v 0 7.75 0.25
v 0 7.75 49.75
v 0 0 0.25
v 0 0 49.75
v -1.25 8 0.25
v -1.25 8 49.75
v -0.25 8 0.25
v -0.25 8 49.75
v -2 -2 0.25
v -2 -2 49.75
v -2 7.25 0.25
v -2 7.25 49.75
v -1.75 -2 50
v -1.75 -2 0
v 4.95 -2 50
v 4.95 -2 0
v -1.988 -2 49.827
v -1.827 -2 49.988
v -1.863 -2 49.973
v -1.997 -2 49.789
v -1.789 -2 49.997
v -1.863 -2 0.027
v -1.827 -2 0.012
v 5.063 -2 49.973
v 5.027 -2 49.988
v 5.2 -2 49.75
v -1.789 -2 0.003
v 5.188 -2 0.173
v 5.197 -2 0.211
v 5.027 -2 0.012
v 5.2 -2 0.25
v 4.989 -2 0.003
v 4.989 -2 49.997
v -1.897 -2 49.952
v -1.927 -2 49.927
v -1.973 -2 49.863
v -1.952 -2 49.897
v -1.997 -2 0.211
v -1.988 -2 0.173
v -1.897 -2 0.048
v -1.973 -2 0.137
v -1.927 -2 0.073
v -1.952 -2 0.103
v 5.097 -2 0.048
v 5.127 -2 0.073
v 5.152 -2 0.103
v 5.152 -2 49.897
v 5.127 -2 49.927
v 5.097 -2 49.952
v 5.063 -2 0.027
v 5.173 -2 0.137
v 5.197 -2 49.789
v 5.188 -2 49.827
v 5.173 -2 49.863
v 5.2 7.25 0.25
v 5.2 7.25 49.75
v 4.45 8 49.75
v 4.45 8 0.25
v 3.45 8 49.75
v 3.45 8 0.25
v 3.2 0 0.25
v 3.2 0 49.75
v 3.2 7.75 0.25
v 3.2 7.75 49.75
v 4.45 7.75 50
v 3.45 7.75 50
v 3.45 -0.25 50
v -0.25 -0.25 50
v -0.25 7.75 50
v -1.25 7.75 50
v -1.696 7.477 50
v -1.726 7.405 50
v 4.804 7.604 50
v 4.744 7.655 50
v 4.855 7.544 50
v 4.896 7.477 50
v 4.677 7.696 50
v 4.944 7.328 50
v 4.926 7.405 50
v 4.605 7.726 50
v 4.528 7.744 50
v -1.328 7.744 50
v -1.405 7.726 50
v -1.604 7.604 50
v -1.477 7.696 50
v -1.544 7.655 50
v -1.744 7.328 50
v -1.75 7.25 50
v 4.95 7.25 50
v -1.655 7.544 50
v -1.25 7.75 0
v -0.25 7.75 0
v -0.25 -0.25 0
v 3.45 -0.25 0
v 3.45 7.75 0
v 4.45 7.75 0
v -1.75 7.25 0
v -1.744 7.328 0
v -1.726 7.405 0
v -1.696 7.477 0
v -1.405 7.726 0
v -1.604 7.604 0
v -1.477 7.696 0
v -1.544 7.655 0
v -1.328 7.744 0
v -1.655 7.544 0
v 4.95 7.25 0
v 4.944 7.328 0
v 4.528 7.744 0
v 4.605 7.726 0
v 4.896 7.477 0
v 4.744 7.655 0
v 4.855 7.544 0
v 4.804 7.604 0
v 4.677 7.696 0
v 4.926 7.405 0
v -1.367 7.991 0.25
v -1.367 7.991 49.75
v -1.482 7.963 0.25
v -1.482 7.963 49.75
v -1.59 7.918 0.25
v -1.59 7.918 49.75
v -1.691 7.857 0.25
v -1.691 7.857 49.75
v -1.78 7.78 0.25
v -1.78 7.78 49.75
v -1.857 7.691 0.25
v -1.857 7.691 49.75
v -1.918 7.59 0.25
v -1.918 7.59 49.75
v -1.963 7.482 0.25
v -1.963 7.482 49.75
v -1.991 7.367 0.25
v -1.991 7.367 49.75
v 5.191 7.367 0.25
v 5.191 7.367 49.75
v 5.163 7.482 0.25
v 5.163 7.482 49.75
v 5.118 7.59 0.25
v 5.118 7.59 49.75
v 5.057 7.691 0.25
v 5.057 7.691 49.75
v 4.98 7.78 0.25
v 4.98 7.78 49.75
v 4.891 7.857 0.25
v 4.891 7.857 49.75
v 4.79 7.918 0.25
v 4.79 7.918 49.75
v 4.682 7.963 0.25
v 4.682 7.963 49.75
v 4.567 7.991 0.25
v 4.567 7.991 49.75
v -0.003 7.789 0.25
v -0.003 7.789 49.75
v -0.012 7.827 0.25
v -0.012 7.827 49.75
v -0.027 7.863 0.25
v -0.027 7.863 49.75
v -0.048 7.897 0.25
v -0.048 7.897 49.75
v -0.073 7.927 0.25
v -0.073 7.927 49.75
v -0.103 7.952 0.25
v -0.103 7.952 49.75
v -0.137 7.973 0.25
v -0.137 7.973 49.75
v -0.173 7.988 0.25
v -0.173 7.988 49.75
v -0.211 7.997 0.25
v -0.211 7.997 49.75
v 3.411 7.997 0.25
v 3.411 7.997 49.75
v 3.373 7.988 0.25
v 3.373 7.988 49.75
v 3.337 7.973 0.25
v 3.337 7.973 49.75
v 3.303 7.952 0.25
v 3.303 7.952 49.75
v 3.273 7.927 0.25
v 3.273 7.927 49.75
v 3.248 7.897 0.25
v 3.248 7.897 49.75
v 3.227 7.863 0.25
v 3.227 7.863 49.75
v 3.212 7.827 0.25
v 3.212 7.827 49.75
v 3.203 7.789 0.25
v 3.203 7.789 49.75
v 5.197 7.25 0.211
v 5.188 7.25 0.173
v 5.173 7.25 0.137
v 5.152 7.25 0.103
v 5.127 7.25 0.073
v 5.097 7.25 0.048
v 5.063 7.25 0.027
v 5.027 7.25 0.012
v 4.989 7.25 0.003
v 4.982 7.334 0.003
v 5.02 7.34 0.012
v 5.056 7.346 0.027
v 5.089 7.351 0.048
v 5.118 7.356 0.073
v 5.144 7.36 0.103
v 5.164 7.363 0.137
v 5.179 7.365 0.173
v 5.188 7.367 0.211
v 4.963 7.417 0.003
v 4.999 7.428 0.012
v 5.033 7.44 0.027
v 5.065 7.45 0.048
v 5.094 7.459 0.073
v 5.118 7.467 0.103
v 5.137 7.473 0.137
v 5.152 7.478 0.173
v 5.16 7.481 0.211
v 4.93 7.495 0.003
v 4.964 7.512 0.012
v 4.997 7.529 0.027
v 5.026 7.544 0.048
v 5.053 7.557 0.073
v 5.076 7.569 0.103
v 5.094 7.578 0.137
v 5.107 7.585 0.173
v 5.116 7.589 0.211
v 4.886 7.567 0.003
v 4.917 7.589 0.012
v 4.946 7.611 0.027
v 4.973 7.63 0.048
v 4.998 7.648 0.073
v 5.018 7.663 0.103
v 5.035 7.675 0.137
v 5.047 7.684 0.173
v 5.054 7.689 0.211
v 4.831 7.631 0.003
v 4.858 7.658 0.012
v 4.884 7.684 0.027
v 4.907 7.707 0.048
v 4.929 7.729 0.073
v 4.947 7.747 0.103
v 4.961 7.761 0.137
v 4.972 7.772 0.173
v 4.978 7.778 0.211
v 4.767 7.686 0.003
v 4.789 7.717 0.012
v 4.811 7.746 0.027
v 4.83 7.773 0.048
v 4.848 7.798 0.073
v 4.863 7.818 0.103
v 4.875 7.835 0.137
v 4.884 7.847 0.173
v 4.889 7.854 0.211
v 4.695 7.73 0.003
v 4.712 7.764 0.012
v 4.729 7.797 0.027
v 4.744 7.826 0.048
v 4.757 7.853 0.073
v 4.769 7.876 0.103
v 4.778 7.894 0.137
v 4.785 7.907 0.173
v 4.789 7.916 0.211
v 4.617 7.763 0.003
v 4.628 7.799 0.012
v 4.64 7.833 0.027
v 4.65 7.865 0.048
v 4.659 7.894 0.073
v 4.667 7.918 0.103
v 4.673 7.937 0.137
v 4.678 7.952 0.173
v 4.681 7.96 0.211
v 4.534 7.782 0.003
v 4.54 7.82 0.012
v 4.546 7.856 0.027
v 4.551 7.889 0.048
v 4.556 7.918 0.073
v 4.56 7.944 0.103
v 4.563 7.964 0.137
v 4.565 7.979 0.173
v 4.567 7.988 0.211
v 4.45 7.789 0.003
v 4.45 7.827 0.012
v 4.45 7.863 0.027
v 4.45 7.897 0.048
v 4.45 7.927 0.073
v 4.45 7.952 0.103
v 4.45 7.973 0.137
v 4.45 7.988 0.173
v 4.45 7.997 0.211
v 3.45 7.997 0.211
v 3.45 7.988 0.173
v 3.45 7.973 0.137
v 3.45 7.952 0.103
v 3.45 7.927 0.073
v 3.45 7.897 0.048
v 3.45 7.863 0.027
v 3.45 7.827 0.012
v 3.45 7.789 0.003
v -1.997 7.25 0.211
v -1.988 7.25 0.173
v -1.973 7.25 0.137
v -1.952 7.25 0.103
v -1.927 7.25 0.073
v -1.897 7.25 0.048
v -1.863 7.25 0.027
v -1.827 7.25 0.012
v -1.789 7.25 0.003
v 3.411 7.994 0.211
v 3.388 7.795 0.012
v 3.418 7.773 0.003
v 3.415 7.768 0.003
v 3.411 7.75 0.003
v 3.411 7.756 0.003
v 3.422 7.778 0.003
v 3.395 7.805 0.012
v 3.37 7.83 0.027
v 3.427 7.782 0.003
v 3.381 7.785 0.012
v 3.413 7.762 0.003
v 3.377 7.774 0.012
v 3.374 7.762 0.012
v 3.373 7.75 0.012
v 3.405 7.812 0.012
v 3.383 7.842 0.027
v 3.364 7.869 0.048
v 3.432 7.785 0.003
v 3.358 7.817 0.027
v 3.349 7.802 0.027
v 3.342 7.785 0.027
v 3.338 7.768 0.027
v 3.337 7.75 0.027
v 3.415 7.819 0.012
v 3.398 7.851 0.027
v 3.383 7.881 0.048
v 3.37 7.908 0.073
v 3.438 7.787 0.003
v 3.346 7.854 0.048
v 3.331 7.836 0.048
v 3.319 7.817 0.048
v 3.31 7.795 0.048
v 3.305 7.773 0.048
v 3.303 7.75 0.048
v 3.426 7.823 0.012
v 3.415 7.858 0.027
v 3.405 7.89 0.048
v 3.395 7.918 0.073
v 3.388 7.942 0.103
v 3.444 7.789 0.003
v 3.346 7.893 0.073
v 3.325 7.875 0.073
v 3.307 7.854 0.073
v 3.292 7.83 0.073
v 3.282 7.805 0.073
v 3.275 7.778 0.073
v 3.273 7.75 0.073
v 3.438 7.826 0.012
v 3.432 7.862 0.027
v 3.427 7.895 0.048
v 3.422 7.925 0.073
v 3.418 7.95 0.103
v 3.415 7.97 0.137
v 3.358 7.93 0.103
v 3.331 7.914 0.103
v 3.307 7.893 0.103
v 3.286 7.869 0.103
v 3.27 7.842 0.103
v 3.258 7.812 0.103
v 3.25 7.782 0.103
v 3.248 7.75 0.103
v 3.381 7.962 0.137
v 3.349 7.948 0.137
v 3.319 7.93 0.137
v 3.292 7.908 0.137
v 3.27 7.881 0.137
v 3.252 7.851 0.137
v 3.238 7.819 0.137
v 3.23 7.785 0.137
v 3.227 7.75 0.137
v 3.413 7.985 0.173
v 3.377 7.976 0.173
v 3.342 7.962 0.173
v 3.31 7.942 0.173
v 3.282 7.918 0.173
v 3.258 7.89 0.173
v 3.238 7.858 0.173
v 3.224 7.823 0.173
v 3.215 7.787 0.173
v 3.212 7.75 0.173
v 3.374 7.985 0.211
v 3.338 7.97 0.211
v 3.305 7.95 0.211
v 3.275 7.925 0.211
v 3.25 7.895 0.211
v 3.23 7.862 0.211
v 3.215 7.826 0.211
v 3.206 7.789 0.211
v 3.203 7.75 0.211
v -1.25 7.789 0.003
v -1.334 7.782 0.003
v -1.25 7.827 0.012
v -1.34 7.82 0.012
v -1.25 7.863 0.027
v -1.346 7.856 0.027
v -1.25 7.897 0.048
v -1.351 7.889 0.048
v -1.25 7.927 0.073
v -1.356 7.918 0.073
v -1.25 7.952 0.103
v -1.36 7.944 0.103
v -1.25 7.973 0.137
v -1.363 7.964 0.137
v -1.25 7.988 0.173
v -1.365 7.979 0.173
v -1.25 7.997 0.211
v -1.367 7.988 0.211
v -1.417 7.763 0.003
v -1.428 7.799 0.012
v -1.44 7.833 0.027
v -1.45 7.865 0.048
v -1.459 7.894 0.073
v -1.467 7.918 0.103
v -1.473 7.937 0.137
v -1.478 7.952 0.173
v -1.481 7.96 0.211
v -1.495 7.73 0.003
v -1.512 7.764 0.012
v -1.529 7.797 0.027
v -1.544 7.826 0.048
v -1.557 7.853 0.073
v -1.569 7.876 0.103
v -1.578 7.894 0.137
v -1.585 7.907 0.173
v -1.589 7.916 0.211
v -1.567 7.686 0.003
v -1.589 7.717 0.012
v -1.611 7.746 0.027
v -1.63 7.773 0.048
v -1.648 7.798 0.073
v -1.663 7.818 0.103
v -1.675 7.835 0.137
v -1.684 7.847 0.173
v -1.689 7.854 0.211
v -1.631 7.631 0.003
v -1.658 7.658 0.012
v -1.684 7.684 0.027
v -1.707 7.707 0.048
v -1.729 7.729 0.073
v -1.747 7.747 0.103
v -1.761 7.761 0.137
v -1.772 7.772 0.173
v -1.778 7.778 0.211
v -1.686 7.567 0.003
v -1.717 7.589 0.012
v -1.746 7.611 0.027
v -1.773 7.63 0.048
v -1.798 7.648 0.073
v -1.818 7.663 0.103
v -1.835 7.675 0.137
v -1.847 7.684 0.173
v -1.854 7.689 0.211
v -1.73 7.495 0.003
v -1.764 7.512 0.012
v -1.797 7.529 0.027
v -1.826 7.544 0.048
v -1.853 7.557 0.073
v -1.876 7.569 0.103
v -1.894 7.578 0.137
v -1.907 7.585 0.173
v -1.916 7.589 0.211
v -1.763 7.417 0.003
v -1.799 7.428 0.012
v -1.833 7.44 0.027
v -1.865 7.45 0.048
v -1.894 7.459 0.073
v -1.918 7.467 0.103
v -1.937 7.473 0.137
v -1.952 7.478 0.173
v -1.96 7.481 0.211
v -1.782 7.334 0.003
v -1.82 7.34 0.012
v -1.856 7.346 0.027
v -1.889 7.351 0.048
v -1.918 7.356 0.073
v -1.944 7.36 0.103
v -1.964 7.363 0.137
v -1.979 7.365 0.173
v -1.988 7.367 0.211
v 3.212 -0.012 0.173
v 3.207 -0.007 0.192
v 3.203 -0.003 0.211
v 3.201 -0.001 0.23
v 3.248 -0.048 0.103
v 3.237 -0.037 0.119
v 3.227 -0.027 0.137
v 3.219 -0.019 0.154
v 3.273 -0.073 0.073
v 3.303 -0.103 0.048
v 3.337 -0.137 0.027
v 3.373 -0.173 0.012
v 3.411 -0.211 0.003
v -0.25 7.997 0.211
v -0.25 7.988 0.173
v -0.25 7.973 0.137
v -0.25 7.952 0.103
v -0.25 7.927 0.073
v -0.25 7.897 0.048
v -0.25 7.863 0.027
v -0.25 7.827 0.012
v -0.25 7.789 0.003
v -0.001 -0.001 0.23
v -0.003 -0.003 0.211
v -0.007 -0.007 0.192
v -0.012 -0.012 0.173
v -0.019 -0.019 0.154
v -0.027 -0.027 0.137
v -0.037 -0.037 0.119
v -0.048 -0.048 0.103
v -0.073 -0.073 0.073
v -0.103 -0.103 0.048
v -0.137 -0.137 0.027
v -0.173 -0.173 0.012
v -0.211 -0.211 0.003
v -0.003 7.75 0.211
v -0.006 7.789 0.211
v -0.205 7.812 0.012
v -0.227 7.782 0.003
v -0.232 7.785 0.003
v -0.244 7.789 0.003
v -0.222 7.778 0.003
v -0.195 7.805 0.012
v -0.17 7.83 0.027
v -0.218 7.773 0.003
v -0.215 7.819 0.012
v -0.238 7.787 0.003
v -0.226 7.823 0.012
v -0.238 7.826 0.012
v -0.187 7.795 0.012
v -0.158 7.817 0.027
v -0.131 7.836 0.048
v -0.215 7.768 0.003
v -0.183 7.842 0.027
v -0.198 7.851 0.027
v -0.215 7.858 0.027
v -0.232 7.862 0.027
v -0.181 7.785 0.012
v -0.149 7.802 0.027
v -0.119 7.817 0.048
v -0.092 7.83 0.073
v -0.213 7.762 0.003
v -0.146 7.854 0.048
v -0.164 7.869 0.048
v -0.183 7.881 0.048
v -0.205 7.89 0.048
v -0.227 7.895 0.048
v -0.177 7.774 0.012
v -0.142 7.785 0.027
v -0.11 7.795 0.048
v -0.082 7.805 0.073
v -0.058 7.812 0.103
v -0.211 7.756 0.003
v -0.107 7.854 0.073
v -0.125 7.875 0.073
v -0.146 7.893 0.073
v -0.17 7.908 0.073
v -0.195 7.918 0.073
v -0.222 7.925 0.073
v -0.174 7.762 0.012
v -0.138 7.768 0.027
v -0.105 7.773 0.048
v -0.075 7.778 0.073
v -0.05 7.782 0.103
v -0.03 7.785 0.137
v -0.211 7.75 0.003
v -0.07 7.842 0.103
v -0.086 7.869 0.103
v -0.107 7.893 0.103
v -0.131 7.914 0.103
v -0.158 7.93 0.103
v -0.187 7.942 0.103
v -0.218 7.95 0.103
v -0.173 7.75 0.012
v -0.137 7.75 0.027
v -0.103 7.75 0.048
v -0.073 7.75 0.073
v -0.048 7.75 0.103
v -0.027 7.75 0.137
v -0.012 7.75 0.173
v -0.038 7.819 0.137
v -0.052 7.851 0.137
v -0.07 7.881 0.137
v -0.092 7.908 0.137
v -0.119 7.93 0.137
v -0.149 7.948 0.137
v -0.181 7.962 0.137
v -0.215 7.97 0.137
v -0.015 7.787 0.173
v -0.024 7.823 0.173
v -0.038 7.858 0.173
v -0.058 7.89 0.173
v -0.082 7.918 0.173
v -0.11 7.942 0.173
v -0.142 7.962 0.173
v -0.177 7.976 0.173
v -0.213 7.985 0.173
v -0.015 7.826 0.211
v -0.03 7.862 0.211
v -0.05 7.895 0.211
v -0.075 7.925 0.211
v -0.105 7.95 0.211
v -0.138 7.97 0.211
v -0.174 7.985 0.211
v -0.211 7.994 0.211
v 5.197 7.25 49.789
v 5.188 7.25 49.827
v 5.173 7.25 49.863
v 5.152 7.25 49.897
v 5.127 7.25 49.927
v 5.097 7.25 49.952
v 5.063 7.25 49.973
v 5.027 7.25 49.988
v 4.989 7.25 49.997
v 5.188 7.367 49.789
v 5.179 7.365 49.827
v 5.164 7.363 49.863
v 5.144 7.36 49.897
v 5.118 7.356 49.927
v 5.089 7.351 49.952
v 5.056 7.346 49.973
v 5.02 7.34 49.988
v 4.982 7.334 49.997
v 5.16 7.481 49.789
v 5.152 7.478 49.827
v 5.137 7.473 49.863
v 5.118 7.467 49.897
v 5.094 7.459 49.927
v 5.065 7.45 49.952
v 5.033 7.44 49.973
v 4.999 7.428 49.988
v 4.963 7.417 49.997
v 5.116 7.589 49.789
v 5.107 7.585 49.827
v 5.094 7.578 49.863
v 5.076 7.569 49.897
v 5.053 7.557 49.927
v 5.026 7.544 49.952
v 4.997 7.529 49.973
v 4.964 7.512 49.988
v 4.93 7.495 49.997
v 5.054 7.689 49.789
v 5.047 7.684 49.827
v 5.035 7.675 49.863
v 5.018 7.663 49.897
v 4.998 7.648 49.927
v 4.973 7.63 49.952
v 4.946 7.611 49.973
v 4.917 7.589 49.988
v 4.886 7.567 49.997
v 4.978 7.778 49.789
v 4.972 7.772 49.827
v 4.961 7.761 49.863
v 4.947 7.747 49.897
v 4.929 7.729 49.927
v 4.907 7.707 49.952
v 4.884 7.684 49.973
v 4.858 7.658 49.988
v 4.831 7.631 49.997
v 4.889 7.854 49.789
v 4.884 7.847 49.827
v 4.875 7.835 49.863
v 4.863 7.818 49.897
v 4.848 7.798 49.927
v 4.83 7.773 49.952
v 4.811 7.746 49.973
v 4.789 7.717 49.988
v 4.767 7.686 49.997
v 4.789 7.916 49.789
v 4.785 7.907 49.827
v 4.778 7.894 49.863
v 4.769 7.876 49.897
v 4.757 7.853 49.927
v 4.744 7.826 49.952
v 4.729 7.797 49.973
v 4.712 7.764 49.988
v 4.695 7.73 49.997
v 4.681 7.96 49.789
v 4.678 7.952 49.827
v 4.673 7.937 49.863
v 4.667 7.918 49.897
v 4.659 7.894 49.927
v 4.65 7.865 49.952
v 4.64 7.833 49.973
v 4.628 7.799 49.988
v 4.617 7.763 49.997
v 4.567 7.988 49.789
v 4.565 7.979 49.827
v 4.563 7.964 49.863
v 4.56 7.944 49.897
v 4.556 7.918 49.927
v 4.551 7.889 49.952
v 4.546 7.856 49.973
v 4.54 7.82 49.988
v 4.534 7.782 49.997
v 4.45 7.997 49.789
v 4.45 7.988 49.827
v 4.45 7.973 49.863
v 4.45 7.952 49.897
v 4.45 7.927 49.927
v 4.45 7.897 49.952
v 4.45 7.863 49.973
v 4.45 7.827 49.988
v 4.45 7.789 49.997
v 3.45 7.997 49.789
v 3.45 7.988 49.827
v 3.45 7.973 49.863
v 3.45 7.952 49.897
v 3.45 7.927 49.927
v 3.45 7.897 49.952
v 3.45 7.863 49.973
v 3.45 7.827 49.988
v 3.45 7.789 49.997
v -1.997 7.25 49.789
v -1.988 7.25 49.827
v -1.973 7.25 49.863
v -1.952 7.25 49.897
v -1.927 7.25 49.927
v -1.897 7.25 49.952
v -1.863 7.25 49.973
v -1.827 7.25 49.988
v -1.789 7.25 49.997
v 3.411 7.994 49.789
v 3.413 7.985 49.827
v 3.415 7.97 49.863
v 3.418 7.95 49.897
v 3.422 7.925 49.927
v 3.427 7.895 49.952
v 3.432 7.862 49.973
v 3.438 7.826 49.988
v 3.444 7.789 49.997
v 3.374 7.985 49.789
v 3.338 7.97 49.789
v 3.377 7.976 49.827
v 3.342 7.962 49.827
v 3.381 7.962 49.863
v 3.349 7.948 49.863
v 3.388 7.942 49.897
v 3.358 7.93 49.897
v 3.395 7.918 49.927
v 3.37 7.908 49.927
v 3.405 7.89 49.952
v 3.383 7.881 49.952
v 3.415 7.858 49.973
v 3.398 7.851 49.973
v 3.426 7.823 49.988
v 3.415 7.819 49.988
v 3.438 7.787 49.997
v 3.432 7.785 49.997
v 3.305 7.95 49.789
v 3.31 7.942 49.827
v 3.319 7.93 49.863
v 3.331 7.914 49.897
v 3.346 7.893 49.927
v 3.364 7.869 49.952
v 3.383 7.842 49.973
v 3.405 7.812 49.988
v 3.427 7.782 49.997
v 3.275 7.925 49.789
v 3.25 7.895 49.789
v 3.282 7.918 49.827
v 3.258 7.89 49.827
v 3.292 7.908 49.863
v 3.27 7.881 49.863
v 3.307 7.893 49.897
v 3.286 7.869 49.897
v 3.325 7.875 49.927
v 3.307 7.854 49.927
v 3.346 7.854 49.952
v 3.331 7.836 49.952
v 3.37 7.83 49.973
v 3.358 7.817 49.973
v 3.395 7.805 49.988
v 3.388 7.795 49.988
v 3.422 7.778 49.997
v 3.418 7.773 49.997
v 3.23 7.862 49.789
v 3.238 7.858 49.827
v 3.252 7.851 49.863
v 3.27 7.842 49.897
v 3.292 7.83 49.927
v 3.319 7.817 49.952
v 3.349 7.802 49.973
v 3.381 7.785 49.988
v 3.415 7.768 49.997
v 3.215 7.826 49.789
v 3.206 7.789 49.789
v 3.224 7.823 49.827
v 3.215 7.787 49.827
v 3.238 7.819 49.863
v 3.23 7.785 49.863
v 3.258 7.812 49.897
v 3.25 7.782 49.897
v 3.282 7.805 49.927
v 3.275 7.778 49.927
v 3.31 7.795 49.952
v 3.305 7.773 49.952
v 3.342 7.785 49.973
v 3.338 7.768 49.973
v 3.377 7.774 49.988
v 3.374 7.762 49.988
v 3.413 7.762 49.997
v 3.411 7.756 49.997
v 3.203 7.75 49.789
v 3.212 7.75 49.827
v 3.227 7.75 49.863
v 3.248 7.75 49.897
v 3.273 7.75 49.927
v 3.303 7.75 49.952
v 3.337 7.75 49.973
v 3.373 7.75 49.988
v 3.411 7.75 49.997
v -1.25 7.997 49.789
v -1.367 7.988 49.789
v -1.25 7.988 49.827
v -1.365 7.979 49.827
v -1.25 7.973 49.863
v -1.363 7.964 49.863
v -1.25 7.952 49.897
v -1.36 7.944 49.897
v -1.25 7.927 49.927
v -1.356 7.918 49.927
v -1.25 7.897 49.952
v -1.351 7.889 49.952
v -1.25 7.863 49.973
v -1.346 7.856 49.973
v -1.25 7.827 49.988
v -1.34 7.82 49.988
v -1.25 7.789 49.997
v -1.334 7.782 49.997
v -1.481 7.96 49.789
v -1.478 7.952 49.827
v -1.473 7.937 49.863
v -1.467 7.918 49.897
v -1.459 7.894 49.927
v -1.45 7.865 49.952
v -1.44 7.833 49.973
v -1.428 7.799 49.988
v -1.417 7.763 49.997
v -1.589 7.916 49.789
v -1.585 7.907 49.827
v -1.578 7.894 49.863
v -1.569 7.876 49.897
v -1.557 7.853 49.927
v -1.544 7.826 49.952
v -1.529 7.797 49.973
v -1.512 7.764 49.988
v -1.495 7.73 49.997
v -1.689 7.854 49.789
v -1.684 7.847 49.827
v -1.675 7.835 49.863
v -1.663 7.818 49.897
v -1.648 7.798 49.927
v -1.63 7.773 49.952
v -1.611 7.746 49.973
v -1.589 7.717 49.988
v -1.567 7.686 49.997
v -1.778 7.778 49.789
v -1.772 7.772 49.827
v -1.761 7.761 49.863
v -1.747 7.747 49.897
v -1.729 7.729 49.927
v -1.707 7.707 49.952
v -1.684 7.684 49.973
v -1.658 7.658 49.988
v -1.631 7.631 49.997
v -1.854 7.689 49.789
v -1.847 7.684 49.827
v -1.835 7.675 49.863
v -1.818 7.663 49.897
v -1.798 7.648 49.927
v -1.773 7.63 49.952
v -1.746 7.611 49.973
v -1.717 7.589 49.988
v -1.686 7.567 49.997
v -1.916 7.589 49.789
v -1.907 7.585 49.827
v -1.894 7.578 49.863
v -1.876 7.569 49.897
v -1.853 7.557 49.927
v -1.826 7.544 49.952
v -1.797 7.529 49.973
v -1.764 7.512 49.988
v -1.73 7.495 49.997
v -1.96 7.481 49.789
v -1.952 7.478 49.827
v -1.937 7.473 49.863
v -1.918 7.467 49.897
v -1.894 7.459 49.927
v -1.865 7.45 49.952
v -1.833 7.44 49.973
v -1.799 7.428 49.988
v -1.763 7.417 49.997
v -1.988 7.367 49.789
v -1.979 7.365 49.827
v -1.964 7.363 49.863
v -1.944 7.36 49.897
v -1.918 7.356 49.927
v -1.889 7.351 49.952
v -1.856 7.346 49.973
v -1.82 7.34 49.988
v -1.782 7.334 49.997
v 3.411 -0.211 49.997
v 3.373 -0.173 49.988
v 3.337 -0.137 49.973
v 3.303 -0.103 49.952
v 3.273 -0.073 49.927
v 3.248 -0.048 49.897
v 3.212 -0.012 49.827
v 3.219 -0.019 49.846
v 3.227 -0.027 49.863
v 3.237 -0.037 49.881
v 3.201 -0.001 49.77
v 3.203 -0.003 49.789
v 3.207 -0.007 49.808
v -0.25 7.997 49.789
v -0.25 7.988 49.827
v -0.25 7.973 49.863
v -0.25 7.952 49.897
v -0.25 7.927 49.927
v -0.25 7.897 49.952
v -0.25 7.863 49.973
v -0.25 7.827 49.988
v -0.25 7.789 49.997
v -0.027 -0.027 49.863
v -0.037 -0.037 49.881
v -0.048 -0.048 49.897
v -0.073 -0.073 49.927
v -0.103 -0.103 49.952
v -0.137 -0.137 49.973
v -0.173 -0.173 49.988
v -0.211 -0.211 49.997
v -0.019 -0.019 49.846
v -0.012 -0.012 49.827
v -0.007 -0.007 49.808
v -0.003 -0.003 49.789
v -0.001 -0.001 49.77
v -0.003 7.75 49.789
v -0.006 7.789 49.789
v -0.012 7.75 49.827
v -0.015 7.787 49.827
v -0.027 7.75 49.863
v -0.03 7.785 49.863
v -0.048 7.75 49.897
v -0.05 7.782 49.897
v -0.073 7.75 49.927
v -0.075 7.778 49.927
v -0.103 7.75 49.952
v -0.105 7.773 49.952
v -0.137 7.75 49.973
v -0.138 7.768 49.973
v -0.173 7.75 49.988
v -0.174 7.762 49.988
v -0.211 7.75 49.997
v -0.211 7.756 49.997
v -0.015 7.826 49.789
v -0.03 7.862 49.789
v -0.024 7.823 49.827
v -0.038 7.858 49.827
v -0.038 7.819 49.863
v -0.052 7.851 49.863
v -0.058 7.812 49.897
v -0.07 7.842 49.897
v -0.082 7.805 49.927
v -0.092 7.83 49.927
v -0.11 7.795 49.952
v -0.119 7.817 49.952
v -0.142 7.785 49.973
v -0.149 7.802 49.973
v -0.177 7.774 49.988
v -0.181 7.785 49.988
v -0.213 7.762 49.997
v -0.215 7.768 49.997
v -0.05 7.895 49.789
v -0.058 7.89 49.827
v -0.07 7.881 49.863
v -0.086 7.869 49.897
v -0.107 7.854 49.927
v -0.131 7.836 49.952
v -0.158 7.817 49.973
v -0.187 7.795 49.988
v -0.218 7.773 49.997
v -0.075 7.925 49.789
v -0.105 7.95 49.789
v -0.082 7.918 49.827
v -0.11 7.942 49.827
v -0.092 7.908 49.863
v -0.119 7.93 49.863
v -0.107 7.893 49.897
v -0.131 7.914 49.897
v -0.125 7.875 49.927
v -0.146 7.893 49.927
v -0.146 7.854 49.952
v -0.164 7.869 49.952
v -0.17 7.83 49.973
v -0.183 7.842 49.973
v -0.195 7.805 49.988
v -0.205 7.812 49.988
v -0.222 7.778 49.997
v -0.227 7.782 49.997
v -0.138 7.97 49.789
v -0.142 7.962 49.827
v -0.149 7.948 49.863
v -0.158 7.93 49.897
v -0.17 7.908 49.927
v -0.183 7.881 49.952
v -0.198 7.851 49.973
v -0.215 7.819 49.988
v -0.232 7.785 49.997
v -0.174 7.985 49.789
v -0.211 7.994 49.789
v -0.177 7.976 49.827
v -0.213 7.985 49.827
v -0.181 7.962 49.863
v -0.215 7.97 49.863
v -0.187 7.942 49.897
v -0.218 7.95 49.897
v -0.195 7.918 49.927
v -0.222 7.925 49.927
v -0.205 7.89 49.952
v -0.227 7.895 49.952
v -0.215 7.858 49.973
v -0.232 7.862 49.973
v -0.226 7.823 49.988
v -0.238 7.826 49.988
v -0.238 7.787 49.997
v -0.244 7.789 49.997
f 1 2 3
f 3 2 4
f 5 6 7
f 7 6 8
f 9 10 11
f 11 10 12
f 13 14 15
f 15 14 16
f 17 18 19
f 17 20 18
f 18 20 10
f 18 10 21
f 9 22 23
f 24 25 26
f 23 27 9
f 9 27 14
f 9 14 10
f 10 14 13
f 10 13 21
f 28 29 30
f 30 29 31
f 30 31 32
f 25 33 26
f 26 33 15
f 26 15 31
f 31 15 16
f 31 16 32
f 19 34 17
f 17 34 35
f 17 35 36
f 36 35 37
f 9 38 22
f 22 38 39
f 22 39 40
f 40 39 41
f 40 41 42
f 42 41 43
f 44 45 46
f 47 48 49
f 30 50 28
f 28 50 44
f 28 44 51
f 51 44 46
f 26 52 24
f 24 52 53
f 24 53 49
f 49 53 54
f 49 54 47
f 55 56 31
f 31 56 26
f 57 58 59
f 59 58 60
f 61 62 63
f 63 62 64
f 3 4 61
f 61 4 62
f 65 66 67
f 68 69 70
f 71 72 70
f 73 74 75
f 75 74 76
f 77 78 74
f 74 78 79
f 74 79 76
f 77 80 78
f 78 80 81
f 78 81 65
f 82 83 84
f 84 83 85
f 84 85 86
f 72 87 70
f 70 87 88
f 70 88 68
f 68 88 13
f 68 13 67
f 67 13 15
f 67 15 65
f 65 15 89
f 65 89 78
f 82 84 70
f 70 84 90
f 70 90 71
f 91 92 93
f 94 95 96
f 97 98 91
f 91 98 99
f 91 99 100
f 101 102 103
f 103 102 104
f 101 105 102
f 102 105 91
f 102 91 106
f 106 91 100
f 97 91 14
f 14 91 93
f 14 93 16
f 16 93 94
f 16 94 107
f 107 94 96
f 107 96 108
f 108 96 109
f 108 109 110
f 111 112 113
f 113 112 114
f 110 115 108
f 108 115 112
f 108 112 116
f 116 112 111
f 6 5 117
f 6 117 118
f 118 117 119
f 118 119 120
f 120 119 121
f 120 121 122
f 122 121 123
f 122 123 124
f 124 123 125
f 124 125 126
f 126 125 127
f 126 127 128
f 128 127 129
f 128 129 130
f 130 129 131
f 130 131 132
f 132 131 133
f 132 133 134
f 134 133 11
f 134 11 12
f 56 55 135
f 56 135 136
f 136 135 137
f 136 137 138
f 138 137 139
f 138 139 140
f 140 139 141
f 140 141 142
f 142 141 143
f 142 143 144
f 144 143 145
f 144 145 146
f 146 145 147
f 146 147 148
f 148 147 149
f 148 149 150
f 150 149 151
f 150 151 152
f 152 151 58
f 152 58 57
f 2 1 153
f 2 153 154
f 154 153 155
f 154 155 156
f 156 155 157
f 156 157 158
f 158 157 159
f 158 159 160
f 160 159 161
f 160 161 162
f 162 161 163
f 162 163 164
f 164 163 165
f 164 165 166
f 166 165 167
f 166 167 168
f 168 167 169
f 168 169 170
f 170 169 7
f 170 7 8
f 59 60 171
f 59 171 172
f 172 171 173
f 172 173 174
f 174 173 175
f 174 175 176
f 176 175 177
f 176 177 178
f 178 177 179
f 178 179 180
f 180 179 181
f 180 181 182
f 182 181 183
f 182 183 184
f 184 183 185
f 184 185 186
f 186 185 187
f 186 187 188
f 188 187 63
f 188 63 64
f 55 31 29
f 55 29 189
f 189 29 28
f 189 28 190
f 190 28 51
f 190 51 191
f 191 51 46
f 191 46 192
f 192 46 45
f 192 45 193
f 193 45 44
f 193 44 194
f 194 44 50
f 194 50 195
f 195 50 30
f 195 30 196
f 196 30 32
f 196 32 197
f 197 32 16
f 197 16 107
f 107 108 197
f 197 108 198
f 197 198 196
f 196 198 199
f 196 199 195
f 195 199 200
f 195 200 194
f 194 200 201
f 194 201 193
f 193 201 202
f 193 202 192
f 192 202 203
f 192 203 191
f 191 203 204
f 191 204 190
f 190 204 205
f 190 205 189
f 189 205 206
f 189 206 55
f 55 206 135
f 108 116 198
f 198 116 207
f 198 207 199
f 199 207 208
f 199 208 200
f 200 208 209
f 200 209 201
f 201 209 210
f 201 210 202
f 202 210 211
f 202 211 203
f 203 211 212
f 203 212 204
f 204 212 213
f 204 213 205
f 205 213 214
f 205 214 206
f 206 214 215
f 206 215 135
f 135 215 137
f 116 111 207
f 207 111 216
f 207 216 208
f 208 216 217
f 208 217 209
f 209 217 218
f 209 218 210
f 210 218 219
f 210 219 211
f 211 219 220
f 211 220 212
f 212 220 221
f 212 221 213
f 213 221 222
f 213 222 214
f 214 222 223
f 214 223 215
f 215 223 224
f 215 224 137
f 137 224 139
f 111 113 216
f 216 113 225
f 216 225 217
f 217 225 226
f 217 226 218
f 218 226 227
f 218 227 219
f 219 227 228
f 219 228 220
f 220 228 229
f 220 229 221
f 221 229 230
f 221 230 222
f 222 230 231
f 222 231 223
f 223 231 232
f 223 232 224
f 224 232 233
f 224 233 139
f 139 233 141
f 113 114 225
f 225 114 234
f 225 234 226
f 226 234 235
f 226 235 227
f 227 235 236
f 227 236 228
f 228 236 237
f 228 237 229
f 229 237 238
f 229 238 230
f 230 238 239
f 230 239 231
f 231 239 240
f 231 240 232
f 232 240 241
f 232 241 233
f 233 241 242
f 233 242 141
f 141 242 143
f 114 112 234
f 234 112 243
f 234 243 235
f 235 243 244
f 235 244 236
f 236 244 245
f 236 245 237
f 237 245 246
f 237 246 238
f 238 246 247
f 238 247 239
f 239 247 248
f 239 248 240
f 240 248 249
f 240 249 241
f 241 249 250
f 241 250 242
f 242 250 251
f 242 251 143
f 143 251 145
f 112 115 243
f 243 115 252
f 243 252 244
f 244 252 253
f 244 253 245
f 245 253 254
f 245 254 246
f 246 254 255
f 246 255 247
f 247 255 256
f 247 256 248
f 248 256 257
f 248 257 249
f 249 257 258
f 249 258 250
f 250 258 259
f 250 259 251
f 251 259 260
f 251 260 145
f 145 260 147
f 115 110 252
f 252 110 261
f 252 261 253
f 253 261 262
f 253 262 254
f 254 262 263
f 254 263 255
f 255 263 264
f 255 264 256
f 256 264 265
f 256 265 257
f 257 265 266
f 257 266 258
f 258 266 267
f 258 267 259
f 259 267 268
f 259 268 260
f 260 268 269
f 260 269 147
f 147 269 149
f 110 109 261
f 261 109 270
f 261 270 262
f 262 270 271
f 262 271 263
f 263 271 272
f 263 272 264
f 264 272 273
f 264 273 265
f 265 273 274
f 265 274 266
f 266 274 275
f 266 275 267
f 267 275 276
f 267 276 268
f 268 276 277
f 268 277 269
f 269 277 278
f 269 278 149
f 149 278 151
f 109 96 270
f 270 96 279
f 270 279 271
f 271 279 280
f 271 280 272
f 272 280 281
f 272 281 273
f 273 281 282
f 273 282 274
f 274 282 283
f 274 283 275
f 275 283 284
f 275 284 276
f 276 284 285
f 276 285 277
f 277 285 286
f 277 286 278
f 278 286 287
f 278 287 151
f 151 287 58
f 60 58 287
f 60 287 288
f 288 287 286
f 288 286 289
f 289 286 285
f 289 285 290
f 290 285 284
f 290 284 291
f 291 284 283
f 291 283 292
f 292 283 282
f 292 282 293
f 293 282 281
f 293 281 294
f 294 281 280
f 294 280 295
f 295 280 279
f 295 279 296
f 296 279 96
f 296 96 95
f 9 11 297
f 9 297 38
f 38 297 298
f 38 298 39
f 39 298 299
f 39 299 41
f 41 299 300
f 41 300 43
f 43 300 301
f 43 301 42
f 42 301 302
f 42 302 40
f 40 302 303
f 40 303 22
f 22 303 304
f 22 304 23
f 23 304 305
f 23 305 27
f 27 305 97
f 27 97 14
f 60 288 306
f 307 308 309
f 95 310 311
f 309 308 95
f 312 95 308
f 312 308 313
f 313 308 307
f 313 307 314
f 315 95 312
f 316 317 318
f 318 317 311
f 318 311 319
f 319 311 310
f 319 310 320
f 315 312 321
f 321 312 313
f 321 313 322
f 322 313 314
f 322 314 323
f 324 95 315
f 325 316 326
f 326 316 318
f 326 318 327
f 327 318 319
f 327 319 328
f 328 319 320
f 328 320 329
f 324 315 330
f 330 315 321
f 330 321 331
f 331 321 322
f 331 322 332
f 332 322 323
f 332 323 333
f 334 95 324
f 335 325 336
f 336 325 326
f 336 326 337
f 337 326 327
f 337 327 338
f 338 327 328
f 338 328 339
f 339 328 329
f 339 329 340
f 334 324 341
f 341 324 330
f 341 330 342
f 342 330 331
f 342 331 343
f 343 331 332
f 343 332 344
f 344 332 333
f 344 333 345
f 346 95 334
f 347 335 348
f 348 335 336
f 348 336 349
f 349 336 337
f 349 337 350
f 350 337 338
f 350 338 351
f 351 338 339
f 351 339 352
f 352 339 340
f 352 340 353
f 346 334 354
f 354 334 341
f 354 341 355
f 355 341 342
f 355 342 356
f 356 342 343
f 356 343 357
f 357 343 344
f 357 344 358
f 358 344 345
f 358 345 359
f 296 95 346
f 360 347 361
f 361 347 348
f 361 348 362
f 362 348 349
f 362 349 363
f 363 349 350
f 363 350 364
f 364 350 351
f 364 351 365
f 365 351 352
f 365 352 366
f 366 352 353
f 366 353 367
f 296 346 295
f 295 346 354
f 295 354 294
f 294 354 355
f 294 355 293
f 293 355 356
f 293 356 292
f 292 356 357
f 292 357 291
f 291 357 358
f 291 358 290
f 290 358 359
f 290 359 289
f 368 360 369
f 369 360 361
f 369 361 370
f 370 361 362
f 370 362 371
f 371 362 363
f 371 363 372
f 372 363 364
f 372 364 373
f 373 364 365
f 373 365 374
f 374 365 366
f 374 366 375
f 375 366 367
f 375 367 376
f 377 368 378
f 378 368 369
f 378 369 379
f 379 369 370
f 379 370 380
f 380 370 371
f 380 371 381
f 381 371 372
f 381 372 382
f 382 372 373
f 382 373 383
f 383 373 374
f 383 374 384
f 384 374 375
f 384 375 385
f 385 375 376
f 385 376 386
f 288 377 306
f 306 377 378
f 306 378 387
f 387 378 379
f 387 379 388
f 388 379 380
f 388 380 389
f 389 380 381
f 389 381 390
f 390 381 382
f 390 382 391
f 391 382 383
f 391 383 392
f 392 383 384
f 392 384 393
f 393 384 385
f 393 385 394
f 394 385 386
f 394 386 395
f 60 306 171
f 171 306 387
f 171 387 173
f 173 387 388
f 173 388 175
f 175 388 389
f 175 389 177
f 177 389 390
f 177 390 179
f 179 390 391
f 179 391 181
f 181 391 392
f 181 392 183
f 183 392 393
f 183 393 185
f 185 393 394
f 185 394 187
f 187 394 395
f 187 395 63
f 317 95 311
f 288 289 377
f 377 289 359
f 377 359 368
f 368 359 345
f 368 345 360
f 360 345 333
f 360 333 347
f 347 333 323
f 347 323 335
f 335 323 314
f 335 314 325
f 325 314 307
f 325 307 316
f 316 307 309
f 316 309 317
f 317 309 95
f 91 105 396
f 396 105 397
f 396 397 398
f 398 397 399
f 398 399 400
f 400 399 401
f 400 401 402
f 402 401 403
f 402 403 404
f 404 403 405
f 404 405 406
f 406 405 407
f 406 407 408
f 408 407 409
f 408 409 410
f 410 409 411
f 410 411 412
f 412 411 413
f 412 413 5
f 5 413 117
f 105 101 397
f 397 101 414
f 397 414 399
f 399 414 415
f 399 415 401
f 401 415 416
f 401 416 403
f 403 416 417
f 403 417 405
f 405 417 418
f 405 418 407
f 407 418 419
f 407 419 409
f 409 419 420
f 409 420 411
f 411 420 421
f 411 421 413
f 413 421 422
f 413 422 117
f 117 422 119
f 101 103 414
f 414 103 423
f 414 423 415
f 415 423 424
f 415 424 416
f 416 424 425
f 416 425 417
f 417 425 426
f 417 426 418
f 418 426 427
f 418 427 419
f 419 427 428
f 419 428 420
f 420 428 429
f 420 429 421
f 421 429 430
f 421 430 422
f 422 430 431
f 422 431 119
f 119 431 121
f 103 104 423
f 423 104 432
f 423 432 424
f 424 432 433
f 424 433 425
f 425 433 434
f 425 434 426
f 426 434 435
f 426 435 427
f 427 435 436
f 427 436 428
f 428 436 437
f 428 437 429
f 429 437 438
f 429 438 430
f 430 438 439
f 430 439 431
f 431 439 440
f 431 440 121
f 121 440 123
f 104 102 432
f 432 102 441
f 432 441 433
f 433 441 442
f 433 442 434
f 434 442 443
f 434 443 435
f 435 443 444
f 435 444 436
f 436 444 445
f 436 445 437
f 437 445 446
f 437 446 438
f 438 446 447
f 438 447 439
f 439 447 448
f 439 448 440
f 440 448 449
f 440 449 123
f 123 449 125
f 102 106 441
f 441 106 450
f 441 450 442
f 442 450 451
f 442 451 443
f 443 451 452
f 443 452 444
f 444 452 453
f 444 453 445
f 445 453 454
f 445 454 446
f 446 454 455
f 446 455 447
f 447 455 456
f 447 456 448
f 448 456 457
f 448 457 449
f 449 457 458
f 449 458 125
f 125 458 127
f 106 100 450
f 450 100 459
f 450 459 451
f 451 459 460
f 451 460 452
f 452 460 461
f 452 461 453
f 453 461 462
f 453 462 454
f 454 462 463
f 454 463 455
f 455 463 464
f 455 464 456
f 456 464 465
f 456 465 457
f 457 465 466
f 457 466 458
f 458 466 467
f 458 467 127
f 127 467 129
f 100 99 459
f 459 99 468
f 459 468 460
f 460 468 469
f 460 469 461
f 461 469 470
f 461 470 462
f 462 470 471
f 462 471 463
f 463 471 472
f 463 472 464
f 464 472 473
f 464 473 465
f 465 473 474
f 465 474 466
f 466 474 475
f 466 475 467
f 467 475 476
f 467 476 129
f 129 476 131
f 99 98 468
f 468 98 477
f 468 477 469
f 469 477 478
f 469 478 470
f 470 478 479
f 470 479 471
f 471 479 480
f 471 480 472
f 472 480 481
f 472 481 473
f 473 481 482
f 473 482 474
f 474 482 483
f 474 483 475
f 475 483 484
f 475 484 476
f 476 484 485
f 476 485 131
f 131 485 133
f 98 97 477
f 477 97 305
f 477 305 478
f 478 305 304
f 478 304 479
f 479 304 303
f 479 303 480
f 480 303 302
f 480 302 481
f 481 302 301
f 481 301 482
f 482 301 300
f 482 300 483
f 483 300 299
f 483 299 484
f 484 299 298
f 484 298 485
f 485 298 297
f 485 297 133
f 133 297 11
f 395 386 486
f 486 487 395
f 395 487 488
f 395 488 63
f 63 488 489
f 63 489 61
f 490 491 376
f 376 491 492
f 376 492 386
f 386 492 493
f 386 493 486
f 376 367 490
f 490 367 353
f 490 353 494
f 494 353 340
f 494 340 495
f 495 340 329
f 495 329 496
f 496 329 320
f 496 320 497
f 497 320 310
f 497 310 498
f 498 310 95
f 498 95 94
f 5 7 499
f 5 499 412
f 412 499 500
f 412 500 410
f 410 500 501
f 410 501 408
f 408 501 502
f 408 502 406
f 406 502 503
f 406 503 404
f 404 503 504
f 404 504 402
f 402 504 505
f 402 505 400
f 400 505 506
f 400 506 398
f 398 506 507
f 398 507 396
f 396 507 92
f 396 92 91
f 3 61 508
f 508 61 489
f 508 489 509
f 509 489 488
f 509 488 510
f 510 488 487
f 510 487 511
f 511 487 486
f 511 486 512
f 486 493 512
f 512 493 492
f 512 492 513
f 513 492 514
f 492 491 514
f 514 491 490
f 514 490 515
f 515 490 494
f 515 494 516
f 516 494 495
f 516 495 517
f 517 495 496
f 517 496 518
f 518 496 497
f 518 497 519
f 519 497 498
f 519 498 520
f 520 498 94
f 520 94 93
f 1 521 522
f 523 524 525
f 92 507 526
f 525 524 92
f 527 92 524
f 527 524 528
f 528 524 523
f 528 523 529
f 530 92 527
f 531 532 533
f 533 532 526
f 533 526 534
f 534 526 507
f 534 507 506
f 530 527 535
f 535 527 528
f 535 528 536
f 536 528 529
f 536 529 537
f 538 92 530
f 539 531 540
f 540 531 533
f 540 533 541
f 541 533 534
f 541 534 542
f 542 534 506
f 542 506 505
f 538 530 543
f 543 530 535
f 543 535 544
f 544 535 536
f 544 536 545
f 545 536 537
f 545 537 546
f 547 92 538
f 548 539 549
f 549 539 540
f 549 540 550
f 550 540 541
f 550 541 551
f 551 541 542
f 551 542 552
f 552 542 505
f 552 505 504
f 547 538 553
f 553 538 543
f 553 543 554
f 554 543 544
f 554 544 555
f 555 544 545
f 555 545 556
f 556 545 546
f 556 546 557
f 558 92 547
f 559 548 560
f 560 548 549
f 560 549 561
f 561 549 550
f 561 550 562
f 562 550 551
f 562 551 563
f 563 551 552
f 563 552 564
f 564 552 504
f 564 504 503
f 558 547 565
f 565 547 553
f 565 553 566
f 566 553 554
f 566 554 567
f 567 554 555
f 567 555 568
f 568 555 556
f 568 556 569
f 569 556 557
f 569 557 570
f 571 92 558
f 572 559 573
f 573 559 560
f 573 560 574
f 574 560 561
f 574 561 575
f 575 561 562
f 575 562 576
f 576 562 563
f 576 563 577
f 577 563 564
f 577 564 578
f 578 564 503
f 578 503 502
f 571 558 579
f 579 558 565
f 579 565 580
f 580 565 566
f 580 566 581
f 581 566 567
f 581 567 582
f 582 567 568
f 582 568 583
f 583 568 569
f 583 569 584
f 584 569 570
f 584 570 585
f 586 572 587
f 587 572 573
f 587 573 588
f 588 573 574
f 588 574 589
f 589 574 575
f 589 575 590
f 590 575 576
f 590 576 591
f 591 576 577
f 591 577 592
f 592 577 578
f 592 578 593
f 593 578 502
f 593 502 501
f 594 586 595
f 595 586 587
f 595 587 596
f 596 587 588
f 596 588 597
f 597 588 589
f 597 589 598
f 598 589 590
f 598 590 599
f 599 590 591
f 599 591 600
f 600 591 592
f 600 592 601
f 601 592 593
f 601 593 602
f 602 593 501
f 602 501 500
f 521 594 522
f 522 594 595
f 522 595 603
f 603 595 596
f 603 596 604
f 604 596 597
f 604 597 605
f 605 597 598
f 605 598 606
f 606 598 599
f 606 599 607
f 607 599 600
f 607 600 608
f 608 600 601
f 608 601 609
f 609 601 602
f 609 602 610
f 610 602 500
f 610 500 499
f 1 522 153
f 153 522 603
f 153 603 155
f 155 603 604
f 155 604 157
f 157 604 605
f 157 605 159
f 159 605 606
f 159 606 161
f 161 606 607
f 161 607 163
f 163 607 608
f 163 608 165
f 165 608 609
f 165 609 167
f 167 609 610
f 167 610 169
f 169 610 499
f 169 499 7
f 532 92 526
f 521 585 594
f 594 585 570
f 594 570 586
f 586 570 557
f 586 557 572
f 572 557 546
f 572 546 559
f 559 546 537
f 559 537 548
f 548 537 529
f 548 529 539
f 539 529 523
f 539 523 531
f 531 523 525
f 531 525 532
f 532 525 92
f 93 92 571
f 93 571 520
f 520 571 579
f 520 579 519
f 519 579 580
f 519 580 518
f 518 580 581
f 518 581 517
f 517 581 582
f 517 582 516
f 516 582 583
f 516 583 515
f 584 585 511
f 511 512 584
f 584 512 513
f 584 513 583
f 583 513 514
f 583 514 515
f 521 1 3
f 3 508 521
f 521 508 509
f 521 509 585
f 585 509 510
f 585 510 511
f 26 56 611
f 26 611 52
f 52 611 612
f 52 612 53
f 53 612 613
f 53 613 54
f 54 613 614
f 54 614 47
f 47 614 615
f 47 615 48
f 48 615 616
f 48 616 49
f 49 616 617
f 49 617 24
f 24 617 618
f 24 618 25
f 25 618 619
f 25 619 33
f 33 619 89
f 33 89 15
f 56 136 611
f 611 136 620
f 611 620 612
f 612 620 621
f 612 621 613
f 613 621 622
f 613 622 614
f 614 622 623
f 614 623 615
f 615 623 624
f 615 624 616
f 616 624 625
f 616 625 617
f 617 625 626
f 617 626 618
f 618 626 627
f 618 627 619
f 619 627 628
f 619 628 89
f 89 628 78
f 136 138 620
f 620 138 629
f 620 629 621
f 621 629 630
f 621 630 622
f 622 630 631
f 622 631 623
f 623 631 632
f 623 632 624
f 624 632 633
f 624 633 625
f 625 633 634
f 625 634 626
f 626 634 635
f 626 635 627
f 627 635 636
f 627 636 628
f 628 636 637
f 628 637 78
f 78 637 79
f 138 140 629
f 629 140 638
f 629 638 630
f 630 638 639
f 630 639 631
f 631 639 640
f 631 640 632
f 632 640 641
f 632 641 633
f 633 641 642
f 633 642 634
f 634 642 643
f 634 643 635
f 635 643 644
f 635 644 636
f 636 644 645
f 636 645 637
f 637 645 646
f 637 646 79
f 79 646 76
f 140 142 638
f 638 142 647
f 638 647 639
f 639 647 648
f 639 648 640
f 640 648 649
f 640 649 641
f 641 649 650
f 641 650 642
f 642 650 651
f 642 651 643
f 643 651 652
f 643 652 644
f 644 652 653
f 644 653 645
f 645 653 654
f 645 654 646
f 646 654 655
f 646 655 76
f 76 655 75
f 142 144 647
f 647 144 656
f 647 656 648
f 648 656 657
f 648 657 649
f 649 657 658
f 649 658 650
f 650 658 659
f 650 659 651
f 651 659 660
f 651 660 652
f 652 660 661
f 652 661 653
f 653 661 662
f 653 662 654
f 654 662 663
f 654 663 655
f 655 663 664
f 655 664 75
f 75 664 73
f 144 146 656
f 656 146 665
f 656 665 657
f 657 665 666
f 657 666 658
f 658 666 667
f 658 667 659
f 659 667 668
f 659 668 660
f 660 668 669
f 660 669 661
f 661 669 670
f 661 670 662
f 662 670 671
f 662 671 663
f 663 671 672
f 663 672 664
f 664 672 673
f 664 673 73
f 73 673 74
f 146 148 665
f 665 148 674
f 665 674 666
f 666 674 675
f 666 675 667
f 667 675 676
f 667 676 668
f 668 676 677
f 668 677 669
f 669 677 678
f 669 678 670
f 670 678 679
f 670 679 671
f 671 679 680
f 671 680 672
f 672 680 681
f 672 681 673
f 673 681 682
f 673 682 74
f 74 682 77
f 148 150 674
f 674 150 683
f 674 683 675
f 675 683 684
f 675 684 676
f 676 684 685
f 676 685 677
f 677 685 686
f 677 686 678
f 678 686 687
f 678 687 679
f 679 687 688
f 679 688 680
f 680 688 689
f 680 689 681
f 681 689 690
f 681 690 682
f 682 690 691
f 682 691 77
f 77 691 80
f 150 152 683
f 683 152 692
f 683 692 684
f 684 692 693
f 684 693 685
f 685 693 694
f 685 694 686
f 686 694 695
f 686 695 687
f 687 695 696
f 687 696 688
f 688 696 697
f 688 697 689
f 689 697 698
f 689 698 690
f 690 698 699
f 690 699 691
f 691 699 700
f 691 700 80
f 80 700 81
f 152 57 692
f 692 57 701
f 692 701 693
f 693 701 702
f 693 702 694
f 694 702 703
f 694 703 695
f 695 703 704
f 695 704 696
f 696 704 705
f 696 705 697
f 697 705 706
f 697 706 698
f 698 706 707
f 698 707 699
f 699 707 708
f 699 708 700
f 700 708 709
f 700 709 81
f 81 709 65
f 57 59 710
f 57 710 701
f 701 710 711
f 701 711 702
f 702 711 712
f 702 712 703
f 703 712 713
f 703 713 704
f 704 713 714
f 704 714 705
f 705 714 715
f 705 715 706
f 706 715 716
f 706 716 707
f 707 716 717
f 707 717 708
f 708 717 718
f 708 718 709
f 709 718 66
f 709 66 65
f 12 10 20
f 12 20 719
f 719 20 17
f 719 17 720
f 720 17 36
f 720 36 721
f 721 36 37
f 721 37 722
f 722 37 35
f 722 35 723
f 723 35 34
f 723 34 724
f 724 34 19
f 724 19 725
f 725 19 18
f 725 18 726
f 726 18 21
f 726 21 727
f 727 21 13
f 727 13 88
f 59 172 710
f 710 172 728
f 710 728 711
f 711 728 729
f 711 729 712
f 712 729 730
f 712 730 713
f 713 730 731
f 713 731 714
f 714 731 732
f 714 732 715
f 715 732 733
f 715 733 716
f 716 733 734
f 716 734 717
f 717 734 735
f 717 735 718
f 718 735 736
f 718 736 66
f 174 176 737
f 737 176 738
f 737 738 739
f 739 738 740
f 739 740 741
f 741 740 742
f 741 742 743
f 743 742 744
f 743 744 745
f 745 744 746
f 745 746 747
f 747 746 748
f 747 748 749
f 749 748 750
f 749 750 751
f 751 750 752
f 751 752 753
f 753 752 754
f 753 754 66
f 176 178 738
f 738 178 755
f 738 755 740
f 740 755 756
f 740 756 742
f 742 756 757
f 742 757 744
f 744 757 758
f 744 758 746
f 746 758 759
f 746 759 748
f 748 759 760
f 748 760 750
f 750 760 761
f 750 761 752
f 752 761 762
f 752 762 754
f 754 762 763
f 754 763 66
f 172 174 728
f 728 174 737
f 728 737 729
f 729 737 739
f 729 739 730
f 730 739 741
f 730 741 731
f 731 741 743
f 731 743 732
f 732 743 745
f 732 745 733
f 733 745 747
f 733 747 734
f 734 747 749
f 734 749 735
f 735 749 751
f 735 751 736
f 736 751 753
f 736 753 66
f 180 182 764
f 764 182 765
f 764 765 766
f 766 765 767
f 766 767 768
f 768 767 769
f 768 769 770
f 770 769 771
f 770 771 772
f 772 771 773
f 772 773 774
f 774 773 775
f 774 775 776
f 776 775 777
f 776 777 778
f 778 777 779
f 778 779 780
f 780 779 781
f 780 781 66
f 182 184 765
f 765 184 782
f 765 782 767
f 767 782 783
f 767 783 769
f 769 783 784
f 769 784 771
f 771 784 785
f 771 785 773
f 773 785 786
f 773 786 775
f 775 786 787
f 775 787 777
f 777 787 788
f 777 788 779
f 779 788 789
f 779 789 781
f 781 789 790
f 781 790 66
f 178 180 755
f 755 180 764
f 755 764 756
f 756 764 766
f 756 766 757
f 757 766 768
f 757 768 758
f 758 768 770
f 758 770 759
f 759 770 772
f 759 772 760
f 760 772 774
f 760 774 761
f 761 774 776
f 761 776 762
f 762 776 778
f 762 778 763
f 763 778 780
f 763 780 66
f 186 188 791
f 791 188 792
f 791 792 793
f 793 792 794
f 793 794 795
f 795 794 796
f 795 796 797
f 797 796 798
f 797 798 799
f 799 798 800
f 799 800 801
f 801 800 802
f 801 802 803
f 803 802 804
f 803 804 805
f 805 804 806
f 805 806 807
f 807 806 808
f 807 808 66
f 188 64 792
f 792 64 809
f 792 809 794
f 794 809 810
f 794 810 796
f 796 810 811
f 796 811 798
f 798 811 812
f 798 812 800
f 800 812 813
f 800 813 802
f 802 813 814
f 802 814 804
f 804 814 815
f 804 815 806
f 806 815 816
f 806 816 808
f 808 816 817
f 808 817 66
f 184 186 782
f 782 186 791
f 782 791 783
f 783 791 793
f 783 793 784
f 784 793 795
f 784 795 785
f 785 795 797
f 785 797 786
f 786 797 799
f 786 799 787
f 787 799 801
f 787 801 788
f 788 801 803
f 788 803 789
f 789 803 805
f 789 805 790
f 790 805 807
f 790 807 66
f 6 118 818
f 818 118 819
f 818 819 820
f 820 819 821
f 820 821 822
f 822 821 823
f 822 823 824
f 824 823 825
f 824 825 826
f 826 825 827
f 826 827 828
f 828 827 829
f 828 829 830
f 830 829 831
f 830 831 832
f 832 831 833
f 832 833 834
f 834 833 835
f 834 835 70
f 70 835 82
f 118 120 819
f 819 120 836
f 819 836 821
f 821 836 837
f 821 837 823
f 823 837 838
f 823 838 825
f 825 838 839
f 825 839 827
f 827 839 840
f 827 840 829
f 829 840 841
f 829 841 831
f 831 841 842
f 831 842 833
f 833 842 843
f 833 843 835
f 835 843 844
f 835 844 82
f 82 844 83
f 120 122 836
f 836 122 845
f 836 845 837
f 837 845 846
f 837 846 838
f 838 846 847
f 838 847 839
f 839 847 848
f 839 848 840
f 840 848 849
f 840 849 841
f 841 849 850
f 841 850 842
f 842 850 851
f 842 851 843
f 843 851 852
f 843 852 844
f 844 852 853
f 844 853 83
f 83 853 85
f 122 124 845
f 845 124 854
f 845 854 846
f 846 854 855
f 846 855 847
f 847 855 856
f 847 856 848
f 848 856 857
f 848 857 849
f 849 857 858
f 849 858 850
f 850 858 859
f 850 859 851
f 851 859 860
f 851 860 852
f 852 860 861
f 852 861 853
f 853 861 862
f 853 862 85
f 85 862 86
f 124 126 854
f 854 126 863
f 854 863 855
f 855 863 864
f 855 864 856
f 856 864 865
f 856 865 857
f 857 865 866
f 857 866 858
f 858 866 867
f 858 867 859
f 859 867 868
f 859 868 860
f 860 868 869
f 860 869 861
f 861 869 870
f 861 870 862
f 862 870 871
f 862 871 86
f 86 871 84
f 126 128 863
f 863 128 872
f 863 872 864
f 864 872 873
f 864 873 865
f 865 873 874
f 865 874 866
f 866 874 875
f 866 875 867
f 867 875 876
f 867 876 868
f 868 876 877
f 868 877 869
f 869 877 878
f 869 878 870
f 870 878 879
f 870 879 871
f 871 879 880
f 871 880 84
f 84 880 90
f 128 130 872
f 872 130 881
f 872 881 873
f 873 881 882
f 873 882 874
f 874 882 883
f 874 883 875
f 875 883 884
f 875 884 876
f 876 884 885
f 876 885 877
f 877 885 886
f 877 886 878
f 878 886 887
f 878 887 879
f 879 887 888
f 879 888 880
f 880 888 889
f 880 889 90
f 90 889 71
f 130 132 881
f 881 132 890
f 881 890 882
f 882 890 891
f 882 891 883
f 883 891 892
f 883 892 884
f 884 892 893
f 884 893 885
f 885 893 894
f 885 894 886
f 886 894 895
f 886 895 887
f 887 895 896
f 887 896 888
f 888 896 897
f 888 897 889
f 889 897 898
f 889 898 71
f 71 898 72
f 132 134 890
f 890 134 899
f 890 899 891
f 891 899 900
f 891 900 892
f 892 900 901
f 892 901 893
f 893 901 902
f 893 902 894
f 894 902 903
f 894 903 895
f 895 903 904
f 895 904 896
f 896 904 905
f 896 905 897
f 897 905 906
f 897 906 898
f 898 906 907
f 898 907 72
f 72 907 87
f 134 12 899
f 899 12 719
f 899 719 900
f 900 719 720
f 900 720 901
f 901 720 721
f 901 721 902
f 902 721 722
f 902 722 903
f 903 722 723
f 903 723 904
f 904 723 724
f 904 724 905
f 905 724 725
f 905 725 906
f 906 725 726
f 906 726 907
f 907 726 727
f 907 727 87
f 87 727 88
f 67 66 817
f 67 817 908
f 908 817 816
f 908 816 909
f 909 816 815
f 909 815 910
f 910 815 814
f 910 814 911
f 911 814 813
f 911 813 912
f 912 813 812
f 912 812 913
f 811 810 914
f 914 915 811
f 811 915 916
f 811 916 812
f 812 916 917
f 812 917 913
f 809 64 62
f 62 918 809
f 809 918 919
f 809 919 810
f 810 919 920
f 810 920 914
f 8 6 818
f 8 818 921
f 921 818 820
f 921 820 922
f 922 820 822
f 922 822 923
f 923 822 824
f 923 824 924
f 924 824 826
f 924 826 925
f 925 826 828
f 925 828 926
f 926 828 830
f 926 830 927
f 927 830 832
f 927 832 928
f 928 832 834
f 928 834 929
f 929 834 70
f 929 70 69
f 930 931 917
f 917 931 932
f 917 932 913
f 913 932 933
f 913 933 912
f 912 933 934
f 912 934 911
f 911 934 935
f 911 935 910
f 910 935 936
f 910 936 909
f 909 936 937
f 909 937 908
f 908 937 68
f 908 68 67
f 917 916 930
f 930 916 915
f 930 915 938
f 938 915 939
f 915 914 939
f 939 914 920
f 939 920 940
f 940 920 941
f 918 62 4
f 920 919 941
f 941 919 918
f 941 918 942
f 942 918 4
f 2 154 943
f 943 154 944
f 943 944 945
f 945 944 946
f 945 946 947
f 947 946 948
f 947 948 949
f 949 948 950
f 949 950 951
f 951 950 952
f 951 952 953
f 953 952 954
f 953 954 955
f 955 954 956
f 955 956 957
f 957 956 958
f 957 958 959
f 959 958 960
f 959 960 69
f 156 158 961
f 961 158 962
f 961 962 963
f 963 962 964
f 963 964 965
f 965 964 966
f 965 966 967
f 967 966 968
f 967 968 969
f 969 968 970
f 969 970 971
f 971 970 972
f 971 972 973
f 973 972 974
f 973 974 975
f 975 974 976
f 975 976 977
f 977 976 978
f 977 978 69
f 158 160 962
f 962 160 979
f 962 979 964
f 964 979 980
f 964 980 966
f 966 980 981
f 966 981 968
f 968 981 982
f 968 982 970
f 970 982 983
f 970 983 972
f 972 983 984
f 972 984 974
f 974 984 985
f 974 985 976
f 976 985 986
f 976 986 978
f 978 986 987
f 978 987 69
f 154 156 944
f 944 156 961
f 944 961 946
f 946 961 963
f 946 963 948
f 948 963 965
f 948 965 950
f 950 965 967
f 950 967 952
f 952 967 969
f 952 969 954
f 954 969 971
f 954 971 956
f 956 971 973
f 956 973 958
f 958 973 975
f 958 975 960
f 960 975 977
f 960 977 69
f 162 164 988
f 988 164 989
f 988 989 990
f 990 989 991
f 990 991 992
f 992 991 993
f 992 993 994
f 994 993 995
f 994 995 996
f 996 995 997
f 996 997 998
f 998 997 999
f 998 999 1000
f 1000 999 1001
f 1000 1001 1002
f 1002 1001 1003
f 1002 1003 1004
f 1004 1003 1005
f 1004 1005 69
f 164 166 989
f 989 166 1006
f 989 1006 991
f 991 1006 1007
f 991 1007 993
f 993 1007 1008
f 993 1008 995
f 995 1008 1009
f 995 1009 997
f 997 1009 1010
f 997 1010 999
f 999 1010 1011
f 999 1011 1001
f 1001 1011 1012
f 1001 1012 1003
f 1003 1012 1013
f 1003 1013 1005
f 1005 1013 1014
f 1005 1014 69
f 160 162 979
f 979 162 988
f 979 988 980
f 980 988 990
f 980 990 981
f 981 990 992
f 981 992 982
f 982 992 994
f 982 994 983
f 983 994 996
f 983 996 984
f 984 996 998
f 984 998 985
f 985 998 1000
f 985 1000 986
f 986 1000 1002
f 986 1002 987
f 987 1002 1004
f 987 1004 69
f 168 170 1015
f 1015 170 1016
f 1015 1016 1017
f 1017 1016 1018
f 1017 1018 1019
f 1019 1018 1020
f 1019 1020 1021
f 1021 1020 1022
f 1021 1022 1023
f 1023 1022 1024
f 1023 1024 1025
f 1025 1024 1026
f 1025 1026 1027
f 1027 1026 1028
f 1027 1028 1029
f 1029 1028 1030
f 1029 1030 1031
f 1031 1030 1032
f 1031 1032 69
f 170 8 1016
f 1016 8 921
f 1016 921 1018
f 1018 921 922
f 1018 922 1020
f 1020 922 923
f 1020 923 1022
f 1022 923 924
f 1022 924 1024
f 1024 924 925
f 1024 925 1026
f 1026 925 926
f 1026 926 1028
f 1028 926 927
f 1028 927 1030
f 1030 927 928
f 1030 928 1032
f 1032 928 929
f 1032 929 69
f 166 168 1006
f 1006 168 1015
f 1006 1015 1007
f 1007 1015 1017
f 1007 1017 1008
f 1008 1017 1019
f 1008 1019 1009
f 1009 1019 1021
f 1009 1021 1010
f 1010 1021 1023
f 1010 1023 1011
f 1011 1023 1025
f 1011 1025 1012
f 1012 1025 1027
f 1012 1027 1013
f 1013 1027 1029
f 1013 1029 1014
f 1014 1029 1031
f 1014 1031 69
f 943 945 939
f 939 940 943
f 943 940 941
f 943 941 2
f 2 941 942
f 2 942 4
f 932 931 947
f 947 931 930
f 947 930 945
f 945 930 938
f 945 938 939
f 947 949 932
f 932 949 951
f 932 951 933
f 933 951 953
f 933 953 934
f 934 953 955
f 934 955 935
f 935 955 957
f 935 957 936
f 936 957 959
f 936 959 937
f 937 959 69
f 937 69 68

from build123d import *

# Parameters (mm, degrees)
BOSS_EXTRU_1_DEPTH = 50
CONG_1_R           = 0.75
CONG_2_R           = 0.25
CONG_3_R           = 0.25


with BuildPart() as part:
    # Esquisse1 → Boss.-Extru.1 (new body)
    with BuildSketch(Plane.XY):
        Polygon((3.2, 0), (0, 0), (0, 8), (-2, 8), (-2, 0), (-2, -2), (5.2, -2), (5.2, 0), (5.2, 8), (3.2, 8), align=None)
    extrude(amount=BOSS_EXTRU_1_DEPTH)

    # Congé1
    cong_1_edges = [part.edges().sort_by_distance(p)[0] for p in [
        (5.2, 8, 25),
        (-2, 8, 25),
    ]]
    fillet(cong_1_edges, radius=CONG_1_R)

    # Congé2
    cong_2_edges = [part.edges().sort_by_distance(p)[0] for p in [
        (3.2, 8, 25),
        (0, 8, 25),
    ]]
    fillet(cong_2_edges, radius=CONG_2_R)

    # Congé3
    cong_3_edges = [part.edges().sort_by_distance(p)[0] for p in [
        (1.6, 0, 0),
        (5.2, 2.625, 0),
        (0, 3.875, 0),
        (5.2, 2.625, 50),
        (-2, 2.625, 0),
        (-2, 2.625, 50),
        (3.95, 8, 0),
        (4.980330086, 7.780330086, 0),
        (-1.780330086, 7.780330086, 0),
        (3.95, 8, 50),
        (4.980330086, 7.780330086, 50),
        (-1.780330086, 7.780330086, 50),
        (1.6, 0, 50),
        (-0.75, 8, 0),
        (-0.75, 8, 50),
        (3.2, 3.875, 0),
        (3.273223305, 7.926776695, 0),
        (-0.073223305, 7.926776695, 0),
        (3.2, 3.875, 50),
        (3.273223305, 7.926776695, 50),
        (-0.073223305, 7.926776695, 50),
        (0, 3.875, 50),
    ]]
    fillet(cong_3_edges, radius=CONG_3_R)


solid = part.part
